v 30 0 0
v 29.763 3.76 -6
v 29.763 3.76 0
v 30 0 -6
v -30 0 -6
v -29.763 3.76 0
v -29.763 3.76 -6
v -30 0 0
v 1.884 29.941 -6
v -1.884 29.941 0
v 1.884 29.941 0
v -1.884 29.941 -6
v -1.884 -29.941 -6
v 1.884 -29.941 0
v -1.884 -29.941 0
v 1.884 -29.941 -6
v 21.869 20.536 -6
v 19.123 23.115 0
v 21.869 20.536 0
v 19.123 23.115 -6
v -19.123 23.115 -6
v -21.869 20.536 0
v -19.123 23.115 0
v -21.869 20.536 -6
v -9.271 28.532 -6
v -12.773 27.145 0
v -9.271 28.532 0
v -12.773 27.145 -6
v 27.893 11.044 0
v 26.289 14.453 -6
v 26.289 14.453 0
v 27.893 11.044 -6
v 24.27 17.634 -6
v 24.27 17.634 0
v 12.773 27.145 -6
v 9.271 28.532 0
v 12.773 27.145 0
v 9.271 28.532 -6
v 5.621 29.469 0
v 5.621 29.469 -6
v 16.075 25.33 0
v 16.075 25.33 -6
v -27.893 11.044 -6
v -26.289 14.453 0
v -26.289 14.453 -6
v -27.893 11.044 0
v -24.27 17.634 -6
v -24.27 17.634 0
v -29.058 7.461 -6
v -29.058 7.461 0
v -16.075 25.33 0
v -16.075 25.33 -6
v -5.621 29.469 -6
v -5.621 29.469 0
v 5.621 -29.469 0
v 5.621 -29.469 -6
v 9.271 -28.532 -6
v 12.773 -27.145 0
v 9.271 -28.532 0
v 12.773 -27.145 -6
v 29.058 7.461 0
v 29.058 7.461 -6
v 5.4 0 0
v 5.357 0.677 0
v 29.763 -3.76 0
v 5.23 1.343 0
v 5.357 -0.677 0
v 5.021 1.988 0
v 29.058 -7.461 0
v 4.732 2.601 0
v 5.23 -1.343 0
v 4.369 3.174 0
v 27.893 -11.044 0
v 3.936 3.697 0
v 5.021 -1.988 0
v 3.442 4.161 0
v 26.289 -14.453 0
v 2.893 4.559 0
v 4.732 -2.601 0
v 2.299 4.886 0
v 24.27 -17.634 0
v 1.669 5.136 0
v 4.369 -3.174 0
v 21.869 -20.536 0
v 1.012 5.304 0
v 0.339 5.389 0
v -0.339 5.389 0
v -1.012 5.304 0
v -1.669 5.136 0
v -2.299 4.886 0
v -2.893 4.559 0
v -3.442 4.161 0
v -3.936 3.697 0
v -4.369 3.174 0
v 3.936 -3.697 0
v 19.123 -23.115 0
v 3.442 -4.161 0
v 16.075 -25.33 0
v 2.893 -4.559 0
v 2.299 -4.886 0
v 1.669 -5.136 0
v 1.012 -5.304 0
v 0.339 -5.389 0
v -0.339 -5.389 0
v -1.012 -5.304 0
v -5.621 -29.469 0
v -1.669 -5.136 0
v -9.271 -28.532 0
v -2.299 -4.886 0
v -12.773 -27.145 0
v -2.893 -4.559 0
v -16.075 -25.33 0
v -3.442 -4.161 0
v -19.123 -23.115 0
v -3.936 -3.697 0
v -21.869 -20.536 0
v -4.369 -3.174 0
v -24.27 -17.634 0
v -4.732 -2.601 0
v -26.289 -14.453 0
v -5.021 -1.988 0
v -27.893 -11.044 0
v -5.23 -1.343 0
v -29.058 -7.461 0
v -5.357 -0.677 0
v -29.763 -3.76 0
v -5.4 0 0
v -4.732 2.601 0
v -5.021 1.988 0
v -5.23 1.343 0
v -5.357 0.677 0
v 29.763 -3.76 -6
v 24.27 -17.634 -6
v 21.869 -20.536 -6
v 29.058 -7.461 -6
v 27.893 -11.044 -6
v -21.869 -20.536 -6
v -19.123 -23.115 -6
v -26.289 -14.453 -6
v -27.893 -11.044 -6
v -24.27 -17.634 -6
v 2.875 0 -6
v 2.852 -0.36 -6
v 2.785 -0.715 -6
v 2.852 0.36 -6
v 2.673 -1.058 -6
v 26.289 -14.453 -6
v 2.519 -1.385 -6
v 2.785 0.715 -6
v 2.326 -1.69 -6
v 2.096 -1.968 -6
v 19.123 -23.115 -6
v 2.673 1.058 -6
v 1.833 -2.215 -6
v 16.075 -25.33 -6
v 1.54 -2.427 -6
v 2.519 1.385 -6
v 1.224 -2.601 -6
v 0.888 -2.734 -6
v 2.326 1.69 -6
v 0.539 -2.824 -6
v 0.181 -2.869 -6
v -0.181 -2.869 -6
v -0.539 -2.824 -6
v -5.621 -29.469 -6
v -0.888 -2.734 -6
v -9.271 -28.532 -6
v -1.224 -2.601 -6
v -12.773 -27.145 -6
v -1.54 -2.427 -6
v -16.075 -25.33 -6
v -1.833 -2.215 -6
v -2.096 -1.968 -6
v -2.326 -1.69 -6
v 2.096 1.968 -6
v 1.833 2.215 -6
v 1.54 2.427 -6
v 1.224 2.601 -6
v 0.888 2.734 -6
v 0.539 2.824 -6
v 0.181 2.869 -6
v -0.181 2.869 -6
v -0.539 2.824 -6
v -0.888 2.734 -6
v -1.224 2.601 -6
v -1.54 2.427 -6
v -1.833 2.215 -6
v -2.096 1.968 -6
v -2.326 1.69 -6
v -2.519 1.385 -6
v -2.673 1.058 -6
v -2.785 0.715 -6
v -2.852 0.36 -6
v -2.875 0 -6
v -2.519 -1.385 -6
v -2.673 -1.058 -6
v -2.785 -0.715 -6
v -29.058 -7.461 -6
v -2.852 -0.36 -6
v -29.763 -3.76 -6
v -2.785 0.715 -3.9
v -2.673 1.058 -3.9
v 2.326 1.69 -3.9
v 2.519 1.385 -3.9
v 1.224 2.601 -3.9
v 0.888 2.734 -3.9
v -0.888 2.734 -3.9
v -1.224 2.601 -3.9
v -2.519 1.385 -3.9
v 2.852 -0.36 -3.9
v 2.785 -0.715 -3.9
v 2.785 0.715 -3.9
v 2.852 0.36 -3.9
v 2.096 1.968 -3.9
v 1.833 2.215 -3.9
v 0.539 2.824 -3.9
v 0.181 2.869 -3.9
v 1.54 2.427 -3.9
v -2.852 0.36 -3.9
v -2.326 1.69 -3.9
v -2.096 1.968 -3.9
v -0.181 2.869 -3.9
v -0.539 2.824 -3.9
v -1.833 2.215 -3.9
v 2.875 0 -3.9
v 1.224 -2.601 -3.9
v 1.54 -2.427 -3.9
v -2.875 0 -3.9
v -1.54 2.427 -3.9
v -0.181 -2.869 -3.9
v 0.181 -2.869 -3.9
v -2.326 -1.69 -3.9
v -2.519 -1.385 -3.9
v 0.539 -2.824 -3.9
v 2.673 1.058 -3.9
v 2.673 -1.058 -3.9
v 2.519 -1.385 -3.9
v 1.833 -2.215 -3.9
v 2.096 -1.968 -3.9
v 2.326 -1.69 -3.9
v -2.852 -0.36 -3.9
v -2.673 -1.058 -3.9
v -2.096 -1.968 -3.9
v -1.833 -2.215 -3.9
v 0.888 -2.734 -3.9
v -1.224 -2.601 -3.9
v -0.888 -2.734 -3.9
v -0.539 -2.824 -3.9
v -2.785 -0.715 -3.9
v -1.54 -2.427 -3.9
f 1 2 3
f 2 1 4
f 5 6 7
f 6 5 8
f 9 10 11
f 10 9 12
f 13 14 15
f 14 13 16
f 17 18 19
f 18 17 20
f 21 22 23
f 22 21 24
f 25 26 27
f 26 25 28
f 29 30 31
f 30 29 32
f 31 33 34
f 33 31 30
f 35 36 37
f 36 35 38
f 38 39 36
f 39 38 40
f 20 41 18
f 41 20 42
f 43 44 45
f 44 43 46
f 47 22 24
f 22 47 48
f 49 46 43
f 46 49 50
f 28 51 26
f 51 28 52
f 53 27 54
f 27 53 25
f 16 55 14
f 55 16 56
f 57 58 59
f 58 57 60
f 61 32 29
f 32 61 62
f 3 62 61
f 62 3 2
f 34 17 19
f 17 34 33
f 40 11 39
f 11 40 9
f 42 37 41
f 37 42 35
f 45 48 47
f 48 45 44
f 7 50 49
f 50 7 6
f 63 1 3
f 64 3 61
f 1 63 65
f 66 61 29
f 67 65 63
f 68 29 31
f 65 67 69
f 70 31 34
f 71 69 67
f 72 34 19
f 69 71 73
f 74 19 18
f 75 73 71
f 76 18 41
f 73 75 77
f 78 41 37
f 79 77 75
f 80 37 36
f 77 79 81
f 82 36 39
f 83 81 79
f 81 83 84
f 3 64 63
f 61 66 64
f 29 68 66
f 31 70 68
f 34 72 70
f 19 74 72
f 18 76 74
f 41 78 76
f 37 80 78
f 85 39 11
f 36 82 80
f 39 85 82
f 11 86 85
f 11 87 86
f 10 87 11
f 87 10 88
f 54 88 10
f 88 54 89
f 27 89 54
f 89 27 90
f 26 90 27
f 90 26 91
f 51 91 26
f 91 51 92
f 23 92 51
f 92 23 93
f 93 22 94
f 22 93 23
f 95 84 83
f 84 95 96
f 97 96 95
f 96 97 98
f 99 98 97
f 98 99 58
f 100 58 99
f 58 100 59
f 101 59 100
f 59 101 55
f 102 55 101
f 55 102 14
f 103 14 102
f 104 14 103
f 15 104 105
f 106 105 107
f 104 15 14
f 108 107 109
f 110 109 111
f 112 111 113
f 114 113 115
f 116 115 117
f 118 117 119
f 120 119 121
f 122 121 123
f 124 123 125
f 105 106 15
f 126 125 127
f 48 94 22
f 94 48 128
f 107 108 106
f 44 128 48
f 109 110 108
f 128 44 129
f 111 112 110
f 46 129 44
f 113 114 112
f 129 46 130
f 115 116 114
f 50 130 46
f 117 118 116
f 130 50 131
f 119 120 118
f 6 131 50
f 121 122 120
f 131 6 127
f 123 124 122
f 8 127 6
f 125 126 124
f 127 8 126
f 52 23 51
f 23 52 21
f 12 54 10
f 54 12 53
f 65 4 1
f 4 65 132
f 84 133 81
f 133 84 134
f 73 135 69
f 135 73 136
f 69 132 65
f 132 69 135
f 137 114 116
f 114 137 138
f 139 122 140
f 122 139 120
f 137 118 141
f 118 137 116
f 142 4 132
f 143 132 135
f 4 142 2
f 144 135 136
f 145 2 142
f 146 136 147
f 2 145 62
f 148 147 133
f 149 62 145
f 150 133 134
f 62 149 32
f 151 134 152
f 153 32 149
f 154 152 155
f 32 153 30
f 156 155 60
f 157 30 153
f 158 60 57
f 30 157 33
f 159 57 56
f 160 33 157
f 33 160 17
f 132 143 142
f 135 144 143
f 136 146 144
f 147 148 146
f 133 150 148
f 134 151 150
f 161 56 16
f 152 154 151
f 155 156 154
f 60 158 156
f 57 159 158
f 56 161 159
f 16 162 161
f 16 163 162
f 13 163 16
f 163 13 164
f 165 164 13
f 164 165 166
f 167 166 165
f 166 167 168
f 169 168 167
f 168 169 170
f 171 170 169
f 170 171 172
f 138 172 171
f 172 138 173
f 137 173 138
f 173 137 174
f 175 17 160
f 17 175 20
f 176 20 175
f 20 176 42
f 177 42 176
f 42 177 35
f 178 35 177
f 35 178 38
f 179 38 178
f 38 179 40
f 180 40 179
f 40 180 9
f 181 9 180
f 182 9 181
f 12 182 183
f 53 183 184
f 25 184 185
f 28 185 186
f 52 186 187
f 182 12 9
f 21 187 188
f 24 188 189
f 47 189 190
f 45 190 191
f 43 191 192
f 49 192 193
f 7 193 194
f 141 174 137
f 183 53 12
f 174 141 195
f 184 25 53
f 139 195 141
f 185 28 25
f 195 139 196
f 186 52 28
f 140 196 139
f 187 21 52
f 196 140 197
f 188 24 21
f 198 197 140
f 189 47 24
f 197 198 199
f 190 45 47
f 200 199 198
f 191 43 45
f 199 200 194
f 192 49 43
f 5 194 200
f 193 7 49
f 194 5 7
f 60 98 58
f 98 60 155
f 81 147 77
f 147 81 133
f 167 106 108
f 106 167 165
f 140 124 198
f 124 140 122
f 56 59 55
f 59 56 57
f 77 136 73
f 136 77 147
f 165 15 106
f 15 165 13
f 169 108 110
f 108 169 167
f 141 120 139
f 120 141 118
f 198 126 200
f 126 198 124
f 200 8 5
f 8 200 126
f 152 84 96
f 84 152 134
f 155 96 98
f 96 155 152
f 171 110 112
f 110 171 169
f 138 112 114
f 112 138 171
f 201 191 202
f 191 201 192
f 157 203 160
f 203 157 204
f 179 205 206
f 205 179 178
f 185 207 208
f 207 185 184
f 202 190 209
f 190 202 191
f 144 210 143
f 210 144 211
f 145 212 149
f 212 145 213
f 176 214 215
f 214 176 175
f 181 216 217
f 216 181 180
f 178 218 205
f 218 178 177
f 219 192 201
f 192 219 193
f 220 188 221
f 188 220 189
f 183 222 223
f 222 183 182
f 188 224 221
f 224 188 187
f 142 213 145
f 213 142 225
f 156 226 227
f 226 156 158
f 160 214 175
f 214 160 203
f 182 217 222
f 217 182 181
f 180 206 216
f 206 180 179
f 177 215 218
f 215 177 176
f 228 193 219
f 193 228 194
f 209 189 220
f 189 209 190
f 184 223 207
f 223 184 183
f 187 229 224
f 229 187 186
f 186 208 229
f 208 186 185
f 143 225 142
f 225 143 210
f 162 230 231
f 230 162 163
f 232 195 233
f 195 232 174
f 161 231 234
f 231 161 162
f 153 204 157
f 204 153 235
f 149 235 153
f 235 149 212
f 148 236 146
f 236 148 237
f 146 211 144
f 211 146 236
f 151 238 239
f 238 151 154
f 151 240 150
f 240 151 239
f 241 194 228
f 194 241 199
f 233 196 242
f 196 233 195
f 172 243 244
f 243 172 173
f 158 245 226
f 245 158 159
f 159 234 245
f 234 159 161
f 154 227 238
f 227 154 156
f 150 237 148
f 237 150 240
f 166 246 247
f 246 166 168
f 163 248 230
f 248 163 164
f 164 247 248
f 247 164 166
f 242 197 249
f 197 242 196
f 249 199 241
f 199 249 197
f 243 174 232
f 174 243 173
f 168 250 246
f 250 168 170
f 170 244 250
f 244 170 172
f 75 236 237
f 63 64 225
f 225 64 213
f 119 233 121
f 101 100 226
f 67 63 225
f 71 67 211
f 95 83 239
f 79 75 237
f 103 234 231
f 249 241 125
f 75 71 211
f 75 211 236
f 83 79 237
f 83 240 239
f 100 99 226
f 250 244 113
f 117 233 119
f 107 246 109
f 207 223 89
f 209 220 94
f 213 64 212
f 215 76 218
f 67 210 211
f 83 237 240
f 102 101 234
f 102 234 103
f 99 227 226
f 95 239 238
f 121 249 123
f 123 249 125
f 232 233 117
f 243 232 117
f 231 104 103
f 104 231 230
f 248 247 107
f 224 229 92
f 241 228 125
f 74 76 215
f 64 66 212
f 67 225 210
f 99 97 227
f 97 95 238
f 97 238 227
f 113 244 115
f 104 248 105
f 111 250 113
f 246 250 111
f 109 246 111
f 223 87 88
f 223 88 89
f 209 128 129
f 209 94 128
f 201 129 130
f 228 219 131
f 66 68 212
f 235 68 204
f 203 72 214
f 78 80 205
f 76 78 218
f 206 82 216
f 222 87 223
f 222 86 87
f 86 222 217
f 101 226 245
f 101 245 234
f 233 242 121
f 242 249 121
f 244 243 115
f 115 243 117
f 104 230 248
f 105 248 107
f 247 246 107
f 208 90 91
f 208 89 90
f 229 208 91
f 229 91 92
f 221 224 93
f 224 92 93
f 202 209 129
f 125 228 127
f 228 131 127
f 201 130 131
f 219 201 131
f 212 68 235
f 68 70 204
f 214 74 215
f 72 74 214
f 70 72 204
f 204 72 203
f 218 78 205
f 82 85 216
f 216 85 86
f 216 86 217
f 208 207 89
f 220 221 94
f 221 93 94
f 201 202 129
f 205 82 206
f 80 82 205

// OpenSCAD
$fn = 50;


difference() {
	union() {
		translate(v = [0, 0, -6.0000000000]) {
			cylinder(h = 6, r = 30.0000000000);
		}
		translate(v = [0, 0, -9.0000000000]) {
			cylinder(h = 9, r = 2.8750000000);
		}
	}
	union() {
		translate(v = [0, 0, 0]) {
			rotate(a = [0, 0, 0]) {
				difference() {
					union() {
						translate(v = [0, 0, -9.0000000000]) {
							cylinder(h = 9, r = 2.6000000000);
						}
						translate(v = [0, 0, -3.9000000000]) {
							cylinder(h = 3.9000000000, r1 = 2.8750000000, r2 = 5.4000000000);
						}
						translate(v = [0, 0, -9.0000000000]) {
							cylinder(h = 9, r = 2.8750000000);
						}
						translate(v = [0, 0, -9.0000000000]) {
							cylinder(h = 9, r = 2.6000000000);
						}
					}
					union();
				}
			}
		}
	}
}
